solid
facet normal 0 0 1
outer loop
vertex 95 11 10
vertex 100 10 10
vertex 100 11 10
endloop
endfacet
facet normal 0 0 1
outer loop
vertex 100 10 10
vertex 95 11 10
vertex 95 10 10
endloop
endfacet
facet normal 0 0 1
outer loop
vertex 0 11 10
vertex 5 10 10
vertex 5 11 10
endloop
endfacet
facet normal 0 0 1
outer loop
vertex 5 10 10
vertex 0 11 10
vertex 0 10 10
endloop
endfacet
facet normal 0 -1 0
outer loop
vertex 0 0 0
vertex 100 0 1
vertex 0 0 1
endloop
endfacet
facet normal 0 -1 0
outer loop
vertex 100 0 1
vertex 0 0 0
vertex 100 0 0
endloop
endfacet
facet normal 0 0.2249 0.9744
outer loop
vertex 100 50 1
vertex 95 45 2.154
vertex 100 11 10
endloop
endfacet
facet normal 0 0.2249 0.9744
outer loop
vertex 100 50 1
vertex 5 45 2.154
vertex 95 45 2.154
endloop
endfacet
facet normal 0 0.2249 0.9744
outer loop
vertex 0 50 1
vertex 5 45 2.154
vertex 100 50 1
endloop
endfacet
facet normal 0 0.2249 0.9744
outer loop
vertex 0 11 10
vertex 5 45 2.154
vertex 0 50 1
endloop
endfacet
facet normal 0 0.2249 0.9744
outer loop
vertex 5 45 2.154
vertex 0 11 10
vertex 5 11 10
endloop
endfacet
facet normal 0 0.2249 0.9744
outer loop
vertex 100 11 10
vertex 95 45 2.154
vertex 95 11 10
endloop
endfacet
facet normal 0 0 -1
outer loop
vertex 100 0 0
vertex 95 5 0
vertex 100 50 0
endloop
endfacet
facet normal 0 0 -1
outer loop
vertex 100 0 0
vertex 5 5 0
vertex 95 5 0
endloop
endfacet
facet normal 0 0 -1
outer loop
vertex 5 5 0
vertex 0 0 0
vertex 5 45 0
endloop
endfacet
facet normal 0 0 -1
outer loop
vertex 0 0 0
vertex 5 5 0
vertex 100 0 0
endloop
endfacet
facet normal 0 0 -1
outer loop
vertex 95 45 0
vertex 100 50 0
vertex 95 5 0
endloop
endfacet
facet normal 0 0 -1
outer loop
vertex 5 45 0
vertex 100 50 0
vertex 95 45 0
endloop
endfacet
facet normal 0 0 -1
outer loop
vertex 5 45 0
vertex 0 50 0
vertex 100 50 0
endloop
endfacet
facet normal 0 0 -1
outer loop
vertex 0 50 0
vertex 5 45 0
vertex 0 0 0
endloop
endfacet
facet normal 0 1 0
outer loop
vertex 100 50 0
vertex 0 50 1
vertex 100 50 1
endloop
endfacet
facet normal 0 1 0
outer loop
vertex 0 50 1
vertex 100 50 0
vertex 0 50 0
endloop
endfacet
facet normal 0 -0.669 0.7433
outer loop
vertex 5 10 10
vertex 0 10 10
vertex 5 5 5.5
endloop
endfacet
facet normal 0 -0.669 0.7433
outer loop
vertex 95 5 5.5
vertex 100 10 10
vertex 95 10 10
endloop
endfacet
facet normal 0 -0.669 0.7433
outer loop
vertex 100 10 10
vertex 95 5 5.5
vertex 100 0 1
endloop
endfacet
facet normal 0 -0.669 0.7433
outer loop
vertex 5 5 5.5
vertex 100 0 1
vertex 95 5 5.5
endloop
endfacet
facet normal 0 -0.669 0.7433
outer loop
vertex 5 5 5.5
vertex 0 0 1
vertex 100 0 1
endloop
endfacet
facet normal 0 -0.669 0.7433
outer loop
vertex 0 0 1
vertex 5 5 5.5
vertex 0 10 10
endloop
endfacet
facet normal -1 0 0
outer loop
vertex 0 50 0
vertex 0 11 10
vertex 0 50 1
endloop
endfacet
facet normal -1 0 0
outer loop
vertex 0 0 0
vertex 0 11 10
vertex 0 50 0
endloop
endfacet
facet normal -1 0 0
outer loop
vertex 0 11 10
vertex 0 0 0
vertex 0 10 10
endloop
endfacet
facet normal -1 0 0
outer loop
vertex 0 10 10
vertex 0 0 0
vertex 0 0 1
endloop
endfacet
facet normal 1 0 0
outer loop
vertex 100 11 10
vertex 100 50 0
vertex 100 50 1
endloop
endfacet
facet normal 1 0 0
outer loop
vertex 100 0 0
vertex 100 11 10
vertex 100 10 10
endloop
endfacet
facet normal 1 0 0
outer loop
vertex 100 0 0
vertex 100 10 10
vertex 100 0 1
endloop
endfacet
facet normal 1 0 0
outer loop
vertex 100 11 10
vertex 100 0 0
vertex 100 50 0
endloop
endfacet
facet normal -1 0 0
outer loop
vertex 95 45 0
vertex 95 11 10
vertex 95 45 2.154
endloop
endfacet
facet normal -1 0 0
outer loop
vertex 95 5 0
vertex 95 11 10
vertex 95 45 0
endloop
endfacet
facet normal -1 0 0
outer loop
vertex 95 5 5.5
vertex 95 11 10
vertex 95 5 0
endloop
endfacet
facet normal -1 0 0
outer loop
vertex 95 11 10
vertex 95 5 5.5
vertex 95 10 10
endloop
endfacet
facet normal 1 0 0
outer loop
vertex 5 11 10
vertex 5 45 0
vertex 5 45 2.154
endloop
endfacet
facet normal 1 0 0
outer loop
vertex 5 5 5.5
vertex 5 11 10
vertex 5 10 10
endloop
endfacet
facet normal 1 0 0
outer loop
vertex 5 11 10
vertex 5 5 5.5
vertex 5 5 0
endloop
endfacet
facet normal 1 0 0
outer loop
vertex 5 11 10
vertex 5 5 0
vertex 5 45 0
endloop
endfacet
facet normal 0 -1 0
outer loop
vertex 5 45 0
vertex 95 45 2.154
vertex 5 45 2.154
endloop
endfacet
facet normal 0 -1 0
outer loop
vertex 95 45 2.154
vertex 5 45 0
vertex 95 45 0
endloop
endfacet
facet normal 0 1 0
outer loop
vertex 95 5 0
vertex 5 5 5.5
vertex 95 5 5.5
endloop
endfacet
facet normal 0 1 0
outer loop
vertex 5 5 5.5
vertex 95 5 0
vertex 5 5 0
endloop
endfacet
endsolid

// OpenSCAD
difference(){
    hull(){
        cube([100,50,1]);
        translate([0,10,0]) cube([100,1,10]);
    }
    translate([5,5,-10]) cube([90,40,50]);
}
